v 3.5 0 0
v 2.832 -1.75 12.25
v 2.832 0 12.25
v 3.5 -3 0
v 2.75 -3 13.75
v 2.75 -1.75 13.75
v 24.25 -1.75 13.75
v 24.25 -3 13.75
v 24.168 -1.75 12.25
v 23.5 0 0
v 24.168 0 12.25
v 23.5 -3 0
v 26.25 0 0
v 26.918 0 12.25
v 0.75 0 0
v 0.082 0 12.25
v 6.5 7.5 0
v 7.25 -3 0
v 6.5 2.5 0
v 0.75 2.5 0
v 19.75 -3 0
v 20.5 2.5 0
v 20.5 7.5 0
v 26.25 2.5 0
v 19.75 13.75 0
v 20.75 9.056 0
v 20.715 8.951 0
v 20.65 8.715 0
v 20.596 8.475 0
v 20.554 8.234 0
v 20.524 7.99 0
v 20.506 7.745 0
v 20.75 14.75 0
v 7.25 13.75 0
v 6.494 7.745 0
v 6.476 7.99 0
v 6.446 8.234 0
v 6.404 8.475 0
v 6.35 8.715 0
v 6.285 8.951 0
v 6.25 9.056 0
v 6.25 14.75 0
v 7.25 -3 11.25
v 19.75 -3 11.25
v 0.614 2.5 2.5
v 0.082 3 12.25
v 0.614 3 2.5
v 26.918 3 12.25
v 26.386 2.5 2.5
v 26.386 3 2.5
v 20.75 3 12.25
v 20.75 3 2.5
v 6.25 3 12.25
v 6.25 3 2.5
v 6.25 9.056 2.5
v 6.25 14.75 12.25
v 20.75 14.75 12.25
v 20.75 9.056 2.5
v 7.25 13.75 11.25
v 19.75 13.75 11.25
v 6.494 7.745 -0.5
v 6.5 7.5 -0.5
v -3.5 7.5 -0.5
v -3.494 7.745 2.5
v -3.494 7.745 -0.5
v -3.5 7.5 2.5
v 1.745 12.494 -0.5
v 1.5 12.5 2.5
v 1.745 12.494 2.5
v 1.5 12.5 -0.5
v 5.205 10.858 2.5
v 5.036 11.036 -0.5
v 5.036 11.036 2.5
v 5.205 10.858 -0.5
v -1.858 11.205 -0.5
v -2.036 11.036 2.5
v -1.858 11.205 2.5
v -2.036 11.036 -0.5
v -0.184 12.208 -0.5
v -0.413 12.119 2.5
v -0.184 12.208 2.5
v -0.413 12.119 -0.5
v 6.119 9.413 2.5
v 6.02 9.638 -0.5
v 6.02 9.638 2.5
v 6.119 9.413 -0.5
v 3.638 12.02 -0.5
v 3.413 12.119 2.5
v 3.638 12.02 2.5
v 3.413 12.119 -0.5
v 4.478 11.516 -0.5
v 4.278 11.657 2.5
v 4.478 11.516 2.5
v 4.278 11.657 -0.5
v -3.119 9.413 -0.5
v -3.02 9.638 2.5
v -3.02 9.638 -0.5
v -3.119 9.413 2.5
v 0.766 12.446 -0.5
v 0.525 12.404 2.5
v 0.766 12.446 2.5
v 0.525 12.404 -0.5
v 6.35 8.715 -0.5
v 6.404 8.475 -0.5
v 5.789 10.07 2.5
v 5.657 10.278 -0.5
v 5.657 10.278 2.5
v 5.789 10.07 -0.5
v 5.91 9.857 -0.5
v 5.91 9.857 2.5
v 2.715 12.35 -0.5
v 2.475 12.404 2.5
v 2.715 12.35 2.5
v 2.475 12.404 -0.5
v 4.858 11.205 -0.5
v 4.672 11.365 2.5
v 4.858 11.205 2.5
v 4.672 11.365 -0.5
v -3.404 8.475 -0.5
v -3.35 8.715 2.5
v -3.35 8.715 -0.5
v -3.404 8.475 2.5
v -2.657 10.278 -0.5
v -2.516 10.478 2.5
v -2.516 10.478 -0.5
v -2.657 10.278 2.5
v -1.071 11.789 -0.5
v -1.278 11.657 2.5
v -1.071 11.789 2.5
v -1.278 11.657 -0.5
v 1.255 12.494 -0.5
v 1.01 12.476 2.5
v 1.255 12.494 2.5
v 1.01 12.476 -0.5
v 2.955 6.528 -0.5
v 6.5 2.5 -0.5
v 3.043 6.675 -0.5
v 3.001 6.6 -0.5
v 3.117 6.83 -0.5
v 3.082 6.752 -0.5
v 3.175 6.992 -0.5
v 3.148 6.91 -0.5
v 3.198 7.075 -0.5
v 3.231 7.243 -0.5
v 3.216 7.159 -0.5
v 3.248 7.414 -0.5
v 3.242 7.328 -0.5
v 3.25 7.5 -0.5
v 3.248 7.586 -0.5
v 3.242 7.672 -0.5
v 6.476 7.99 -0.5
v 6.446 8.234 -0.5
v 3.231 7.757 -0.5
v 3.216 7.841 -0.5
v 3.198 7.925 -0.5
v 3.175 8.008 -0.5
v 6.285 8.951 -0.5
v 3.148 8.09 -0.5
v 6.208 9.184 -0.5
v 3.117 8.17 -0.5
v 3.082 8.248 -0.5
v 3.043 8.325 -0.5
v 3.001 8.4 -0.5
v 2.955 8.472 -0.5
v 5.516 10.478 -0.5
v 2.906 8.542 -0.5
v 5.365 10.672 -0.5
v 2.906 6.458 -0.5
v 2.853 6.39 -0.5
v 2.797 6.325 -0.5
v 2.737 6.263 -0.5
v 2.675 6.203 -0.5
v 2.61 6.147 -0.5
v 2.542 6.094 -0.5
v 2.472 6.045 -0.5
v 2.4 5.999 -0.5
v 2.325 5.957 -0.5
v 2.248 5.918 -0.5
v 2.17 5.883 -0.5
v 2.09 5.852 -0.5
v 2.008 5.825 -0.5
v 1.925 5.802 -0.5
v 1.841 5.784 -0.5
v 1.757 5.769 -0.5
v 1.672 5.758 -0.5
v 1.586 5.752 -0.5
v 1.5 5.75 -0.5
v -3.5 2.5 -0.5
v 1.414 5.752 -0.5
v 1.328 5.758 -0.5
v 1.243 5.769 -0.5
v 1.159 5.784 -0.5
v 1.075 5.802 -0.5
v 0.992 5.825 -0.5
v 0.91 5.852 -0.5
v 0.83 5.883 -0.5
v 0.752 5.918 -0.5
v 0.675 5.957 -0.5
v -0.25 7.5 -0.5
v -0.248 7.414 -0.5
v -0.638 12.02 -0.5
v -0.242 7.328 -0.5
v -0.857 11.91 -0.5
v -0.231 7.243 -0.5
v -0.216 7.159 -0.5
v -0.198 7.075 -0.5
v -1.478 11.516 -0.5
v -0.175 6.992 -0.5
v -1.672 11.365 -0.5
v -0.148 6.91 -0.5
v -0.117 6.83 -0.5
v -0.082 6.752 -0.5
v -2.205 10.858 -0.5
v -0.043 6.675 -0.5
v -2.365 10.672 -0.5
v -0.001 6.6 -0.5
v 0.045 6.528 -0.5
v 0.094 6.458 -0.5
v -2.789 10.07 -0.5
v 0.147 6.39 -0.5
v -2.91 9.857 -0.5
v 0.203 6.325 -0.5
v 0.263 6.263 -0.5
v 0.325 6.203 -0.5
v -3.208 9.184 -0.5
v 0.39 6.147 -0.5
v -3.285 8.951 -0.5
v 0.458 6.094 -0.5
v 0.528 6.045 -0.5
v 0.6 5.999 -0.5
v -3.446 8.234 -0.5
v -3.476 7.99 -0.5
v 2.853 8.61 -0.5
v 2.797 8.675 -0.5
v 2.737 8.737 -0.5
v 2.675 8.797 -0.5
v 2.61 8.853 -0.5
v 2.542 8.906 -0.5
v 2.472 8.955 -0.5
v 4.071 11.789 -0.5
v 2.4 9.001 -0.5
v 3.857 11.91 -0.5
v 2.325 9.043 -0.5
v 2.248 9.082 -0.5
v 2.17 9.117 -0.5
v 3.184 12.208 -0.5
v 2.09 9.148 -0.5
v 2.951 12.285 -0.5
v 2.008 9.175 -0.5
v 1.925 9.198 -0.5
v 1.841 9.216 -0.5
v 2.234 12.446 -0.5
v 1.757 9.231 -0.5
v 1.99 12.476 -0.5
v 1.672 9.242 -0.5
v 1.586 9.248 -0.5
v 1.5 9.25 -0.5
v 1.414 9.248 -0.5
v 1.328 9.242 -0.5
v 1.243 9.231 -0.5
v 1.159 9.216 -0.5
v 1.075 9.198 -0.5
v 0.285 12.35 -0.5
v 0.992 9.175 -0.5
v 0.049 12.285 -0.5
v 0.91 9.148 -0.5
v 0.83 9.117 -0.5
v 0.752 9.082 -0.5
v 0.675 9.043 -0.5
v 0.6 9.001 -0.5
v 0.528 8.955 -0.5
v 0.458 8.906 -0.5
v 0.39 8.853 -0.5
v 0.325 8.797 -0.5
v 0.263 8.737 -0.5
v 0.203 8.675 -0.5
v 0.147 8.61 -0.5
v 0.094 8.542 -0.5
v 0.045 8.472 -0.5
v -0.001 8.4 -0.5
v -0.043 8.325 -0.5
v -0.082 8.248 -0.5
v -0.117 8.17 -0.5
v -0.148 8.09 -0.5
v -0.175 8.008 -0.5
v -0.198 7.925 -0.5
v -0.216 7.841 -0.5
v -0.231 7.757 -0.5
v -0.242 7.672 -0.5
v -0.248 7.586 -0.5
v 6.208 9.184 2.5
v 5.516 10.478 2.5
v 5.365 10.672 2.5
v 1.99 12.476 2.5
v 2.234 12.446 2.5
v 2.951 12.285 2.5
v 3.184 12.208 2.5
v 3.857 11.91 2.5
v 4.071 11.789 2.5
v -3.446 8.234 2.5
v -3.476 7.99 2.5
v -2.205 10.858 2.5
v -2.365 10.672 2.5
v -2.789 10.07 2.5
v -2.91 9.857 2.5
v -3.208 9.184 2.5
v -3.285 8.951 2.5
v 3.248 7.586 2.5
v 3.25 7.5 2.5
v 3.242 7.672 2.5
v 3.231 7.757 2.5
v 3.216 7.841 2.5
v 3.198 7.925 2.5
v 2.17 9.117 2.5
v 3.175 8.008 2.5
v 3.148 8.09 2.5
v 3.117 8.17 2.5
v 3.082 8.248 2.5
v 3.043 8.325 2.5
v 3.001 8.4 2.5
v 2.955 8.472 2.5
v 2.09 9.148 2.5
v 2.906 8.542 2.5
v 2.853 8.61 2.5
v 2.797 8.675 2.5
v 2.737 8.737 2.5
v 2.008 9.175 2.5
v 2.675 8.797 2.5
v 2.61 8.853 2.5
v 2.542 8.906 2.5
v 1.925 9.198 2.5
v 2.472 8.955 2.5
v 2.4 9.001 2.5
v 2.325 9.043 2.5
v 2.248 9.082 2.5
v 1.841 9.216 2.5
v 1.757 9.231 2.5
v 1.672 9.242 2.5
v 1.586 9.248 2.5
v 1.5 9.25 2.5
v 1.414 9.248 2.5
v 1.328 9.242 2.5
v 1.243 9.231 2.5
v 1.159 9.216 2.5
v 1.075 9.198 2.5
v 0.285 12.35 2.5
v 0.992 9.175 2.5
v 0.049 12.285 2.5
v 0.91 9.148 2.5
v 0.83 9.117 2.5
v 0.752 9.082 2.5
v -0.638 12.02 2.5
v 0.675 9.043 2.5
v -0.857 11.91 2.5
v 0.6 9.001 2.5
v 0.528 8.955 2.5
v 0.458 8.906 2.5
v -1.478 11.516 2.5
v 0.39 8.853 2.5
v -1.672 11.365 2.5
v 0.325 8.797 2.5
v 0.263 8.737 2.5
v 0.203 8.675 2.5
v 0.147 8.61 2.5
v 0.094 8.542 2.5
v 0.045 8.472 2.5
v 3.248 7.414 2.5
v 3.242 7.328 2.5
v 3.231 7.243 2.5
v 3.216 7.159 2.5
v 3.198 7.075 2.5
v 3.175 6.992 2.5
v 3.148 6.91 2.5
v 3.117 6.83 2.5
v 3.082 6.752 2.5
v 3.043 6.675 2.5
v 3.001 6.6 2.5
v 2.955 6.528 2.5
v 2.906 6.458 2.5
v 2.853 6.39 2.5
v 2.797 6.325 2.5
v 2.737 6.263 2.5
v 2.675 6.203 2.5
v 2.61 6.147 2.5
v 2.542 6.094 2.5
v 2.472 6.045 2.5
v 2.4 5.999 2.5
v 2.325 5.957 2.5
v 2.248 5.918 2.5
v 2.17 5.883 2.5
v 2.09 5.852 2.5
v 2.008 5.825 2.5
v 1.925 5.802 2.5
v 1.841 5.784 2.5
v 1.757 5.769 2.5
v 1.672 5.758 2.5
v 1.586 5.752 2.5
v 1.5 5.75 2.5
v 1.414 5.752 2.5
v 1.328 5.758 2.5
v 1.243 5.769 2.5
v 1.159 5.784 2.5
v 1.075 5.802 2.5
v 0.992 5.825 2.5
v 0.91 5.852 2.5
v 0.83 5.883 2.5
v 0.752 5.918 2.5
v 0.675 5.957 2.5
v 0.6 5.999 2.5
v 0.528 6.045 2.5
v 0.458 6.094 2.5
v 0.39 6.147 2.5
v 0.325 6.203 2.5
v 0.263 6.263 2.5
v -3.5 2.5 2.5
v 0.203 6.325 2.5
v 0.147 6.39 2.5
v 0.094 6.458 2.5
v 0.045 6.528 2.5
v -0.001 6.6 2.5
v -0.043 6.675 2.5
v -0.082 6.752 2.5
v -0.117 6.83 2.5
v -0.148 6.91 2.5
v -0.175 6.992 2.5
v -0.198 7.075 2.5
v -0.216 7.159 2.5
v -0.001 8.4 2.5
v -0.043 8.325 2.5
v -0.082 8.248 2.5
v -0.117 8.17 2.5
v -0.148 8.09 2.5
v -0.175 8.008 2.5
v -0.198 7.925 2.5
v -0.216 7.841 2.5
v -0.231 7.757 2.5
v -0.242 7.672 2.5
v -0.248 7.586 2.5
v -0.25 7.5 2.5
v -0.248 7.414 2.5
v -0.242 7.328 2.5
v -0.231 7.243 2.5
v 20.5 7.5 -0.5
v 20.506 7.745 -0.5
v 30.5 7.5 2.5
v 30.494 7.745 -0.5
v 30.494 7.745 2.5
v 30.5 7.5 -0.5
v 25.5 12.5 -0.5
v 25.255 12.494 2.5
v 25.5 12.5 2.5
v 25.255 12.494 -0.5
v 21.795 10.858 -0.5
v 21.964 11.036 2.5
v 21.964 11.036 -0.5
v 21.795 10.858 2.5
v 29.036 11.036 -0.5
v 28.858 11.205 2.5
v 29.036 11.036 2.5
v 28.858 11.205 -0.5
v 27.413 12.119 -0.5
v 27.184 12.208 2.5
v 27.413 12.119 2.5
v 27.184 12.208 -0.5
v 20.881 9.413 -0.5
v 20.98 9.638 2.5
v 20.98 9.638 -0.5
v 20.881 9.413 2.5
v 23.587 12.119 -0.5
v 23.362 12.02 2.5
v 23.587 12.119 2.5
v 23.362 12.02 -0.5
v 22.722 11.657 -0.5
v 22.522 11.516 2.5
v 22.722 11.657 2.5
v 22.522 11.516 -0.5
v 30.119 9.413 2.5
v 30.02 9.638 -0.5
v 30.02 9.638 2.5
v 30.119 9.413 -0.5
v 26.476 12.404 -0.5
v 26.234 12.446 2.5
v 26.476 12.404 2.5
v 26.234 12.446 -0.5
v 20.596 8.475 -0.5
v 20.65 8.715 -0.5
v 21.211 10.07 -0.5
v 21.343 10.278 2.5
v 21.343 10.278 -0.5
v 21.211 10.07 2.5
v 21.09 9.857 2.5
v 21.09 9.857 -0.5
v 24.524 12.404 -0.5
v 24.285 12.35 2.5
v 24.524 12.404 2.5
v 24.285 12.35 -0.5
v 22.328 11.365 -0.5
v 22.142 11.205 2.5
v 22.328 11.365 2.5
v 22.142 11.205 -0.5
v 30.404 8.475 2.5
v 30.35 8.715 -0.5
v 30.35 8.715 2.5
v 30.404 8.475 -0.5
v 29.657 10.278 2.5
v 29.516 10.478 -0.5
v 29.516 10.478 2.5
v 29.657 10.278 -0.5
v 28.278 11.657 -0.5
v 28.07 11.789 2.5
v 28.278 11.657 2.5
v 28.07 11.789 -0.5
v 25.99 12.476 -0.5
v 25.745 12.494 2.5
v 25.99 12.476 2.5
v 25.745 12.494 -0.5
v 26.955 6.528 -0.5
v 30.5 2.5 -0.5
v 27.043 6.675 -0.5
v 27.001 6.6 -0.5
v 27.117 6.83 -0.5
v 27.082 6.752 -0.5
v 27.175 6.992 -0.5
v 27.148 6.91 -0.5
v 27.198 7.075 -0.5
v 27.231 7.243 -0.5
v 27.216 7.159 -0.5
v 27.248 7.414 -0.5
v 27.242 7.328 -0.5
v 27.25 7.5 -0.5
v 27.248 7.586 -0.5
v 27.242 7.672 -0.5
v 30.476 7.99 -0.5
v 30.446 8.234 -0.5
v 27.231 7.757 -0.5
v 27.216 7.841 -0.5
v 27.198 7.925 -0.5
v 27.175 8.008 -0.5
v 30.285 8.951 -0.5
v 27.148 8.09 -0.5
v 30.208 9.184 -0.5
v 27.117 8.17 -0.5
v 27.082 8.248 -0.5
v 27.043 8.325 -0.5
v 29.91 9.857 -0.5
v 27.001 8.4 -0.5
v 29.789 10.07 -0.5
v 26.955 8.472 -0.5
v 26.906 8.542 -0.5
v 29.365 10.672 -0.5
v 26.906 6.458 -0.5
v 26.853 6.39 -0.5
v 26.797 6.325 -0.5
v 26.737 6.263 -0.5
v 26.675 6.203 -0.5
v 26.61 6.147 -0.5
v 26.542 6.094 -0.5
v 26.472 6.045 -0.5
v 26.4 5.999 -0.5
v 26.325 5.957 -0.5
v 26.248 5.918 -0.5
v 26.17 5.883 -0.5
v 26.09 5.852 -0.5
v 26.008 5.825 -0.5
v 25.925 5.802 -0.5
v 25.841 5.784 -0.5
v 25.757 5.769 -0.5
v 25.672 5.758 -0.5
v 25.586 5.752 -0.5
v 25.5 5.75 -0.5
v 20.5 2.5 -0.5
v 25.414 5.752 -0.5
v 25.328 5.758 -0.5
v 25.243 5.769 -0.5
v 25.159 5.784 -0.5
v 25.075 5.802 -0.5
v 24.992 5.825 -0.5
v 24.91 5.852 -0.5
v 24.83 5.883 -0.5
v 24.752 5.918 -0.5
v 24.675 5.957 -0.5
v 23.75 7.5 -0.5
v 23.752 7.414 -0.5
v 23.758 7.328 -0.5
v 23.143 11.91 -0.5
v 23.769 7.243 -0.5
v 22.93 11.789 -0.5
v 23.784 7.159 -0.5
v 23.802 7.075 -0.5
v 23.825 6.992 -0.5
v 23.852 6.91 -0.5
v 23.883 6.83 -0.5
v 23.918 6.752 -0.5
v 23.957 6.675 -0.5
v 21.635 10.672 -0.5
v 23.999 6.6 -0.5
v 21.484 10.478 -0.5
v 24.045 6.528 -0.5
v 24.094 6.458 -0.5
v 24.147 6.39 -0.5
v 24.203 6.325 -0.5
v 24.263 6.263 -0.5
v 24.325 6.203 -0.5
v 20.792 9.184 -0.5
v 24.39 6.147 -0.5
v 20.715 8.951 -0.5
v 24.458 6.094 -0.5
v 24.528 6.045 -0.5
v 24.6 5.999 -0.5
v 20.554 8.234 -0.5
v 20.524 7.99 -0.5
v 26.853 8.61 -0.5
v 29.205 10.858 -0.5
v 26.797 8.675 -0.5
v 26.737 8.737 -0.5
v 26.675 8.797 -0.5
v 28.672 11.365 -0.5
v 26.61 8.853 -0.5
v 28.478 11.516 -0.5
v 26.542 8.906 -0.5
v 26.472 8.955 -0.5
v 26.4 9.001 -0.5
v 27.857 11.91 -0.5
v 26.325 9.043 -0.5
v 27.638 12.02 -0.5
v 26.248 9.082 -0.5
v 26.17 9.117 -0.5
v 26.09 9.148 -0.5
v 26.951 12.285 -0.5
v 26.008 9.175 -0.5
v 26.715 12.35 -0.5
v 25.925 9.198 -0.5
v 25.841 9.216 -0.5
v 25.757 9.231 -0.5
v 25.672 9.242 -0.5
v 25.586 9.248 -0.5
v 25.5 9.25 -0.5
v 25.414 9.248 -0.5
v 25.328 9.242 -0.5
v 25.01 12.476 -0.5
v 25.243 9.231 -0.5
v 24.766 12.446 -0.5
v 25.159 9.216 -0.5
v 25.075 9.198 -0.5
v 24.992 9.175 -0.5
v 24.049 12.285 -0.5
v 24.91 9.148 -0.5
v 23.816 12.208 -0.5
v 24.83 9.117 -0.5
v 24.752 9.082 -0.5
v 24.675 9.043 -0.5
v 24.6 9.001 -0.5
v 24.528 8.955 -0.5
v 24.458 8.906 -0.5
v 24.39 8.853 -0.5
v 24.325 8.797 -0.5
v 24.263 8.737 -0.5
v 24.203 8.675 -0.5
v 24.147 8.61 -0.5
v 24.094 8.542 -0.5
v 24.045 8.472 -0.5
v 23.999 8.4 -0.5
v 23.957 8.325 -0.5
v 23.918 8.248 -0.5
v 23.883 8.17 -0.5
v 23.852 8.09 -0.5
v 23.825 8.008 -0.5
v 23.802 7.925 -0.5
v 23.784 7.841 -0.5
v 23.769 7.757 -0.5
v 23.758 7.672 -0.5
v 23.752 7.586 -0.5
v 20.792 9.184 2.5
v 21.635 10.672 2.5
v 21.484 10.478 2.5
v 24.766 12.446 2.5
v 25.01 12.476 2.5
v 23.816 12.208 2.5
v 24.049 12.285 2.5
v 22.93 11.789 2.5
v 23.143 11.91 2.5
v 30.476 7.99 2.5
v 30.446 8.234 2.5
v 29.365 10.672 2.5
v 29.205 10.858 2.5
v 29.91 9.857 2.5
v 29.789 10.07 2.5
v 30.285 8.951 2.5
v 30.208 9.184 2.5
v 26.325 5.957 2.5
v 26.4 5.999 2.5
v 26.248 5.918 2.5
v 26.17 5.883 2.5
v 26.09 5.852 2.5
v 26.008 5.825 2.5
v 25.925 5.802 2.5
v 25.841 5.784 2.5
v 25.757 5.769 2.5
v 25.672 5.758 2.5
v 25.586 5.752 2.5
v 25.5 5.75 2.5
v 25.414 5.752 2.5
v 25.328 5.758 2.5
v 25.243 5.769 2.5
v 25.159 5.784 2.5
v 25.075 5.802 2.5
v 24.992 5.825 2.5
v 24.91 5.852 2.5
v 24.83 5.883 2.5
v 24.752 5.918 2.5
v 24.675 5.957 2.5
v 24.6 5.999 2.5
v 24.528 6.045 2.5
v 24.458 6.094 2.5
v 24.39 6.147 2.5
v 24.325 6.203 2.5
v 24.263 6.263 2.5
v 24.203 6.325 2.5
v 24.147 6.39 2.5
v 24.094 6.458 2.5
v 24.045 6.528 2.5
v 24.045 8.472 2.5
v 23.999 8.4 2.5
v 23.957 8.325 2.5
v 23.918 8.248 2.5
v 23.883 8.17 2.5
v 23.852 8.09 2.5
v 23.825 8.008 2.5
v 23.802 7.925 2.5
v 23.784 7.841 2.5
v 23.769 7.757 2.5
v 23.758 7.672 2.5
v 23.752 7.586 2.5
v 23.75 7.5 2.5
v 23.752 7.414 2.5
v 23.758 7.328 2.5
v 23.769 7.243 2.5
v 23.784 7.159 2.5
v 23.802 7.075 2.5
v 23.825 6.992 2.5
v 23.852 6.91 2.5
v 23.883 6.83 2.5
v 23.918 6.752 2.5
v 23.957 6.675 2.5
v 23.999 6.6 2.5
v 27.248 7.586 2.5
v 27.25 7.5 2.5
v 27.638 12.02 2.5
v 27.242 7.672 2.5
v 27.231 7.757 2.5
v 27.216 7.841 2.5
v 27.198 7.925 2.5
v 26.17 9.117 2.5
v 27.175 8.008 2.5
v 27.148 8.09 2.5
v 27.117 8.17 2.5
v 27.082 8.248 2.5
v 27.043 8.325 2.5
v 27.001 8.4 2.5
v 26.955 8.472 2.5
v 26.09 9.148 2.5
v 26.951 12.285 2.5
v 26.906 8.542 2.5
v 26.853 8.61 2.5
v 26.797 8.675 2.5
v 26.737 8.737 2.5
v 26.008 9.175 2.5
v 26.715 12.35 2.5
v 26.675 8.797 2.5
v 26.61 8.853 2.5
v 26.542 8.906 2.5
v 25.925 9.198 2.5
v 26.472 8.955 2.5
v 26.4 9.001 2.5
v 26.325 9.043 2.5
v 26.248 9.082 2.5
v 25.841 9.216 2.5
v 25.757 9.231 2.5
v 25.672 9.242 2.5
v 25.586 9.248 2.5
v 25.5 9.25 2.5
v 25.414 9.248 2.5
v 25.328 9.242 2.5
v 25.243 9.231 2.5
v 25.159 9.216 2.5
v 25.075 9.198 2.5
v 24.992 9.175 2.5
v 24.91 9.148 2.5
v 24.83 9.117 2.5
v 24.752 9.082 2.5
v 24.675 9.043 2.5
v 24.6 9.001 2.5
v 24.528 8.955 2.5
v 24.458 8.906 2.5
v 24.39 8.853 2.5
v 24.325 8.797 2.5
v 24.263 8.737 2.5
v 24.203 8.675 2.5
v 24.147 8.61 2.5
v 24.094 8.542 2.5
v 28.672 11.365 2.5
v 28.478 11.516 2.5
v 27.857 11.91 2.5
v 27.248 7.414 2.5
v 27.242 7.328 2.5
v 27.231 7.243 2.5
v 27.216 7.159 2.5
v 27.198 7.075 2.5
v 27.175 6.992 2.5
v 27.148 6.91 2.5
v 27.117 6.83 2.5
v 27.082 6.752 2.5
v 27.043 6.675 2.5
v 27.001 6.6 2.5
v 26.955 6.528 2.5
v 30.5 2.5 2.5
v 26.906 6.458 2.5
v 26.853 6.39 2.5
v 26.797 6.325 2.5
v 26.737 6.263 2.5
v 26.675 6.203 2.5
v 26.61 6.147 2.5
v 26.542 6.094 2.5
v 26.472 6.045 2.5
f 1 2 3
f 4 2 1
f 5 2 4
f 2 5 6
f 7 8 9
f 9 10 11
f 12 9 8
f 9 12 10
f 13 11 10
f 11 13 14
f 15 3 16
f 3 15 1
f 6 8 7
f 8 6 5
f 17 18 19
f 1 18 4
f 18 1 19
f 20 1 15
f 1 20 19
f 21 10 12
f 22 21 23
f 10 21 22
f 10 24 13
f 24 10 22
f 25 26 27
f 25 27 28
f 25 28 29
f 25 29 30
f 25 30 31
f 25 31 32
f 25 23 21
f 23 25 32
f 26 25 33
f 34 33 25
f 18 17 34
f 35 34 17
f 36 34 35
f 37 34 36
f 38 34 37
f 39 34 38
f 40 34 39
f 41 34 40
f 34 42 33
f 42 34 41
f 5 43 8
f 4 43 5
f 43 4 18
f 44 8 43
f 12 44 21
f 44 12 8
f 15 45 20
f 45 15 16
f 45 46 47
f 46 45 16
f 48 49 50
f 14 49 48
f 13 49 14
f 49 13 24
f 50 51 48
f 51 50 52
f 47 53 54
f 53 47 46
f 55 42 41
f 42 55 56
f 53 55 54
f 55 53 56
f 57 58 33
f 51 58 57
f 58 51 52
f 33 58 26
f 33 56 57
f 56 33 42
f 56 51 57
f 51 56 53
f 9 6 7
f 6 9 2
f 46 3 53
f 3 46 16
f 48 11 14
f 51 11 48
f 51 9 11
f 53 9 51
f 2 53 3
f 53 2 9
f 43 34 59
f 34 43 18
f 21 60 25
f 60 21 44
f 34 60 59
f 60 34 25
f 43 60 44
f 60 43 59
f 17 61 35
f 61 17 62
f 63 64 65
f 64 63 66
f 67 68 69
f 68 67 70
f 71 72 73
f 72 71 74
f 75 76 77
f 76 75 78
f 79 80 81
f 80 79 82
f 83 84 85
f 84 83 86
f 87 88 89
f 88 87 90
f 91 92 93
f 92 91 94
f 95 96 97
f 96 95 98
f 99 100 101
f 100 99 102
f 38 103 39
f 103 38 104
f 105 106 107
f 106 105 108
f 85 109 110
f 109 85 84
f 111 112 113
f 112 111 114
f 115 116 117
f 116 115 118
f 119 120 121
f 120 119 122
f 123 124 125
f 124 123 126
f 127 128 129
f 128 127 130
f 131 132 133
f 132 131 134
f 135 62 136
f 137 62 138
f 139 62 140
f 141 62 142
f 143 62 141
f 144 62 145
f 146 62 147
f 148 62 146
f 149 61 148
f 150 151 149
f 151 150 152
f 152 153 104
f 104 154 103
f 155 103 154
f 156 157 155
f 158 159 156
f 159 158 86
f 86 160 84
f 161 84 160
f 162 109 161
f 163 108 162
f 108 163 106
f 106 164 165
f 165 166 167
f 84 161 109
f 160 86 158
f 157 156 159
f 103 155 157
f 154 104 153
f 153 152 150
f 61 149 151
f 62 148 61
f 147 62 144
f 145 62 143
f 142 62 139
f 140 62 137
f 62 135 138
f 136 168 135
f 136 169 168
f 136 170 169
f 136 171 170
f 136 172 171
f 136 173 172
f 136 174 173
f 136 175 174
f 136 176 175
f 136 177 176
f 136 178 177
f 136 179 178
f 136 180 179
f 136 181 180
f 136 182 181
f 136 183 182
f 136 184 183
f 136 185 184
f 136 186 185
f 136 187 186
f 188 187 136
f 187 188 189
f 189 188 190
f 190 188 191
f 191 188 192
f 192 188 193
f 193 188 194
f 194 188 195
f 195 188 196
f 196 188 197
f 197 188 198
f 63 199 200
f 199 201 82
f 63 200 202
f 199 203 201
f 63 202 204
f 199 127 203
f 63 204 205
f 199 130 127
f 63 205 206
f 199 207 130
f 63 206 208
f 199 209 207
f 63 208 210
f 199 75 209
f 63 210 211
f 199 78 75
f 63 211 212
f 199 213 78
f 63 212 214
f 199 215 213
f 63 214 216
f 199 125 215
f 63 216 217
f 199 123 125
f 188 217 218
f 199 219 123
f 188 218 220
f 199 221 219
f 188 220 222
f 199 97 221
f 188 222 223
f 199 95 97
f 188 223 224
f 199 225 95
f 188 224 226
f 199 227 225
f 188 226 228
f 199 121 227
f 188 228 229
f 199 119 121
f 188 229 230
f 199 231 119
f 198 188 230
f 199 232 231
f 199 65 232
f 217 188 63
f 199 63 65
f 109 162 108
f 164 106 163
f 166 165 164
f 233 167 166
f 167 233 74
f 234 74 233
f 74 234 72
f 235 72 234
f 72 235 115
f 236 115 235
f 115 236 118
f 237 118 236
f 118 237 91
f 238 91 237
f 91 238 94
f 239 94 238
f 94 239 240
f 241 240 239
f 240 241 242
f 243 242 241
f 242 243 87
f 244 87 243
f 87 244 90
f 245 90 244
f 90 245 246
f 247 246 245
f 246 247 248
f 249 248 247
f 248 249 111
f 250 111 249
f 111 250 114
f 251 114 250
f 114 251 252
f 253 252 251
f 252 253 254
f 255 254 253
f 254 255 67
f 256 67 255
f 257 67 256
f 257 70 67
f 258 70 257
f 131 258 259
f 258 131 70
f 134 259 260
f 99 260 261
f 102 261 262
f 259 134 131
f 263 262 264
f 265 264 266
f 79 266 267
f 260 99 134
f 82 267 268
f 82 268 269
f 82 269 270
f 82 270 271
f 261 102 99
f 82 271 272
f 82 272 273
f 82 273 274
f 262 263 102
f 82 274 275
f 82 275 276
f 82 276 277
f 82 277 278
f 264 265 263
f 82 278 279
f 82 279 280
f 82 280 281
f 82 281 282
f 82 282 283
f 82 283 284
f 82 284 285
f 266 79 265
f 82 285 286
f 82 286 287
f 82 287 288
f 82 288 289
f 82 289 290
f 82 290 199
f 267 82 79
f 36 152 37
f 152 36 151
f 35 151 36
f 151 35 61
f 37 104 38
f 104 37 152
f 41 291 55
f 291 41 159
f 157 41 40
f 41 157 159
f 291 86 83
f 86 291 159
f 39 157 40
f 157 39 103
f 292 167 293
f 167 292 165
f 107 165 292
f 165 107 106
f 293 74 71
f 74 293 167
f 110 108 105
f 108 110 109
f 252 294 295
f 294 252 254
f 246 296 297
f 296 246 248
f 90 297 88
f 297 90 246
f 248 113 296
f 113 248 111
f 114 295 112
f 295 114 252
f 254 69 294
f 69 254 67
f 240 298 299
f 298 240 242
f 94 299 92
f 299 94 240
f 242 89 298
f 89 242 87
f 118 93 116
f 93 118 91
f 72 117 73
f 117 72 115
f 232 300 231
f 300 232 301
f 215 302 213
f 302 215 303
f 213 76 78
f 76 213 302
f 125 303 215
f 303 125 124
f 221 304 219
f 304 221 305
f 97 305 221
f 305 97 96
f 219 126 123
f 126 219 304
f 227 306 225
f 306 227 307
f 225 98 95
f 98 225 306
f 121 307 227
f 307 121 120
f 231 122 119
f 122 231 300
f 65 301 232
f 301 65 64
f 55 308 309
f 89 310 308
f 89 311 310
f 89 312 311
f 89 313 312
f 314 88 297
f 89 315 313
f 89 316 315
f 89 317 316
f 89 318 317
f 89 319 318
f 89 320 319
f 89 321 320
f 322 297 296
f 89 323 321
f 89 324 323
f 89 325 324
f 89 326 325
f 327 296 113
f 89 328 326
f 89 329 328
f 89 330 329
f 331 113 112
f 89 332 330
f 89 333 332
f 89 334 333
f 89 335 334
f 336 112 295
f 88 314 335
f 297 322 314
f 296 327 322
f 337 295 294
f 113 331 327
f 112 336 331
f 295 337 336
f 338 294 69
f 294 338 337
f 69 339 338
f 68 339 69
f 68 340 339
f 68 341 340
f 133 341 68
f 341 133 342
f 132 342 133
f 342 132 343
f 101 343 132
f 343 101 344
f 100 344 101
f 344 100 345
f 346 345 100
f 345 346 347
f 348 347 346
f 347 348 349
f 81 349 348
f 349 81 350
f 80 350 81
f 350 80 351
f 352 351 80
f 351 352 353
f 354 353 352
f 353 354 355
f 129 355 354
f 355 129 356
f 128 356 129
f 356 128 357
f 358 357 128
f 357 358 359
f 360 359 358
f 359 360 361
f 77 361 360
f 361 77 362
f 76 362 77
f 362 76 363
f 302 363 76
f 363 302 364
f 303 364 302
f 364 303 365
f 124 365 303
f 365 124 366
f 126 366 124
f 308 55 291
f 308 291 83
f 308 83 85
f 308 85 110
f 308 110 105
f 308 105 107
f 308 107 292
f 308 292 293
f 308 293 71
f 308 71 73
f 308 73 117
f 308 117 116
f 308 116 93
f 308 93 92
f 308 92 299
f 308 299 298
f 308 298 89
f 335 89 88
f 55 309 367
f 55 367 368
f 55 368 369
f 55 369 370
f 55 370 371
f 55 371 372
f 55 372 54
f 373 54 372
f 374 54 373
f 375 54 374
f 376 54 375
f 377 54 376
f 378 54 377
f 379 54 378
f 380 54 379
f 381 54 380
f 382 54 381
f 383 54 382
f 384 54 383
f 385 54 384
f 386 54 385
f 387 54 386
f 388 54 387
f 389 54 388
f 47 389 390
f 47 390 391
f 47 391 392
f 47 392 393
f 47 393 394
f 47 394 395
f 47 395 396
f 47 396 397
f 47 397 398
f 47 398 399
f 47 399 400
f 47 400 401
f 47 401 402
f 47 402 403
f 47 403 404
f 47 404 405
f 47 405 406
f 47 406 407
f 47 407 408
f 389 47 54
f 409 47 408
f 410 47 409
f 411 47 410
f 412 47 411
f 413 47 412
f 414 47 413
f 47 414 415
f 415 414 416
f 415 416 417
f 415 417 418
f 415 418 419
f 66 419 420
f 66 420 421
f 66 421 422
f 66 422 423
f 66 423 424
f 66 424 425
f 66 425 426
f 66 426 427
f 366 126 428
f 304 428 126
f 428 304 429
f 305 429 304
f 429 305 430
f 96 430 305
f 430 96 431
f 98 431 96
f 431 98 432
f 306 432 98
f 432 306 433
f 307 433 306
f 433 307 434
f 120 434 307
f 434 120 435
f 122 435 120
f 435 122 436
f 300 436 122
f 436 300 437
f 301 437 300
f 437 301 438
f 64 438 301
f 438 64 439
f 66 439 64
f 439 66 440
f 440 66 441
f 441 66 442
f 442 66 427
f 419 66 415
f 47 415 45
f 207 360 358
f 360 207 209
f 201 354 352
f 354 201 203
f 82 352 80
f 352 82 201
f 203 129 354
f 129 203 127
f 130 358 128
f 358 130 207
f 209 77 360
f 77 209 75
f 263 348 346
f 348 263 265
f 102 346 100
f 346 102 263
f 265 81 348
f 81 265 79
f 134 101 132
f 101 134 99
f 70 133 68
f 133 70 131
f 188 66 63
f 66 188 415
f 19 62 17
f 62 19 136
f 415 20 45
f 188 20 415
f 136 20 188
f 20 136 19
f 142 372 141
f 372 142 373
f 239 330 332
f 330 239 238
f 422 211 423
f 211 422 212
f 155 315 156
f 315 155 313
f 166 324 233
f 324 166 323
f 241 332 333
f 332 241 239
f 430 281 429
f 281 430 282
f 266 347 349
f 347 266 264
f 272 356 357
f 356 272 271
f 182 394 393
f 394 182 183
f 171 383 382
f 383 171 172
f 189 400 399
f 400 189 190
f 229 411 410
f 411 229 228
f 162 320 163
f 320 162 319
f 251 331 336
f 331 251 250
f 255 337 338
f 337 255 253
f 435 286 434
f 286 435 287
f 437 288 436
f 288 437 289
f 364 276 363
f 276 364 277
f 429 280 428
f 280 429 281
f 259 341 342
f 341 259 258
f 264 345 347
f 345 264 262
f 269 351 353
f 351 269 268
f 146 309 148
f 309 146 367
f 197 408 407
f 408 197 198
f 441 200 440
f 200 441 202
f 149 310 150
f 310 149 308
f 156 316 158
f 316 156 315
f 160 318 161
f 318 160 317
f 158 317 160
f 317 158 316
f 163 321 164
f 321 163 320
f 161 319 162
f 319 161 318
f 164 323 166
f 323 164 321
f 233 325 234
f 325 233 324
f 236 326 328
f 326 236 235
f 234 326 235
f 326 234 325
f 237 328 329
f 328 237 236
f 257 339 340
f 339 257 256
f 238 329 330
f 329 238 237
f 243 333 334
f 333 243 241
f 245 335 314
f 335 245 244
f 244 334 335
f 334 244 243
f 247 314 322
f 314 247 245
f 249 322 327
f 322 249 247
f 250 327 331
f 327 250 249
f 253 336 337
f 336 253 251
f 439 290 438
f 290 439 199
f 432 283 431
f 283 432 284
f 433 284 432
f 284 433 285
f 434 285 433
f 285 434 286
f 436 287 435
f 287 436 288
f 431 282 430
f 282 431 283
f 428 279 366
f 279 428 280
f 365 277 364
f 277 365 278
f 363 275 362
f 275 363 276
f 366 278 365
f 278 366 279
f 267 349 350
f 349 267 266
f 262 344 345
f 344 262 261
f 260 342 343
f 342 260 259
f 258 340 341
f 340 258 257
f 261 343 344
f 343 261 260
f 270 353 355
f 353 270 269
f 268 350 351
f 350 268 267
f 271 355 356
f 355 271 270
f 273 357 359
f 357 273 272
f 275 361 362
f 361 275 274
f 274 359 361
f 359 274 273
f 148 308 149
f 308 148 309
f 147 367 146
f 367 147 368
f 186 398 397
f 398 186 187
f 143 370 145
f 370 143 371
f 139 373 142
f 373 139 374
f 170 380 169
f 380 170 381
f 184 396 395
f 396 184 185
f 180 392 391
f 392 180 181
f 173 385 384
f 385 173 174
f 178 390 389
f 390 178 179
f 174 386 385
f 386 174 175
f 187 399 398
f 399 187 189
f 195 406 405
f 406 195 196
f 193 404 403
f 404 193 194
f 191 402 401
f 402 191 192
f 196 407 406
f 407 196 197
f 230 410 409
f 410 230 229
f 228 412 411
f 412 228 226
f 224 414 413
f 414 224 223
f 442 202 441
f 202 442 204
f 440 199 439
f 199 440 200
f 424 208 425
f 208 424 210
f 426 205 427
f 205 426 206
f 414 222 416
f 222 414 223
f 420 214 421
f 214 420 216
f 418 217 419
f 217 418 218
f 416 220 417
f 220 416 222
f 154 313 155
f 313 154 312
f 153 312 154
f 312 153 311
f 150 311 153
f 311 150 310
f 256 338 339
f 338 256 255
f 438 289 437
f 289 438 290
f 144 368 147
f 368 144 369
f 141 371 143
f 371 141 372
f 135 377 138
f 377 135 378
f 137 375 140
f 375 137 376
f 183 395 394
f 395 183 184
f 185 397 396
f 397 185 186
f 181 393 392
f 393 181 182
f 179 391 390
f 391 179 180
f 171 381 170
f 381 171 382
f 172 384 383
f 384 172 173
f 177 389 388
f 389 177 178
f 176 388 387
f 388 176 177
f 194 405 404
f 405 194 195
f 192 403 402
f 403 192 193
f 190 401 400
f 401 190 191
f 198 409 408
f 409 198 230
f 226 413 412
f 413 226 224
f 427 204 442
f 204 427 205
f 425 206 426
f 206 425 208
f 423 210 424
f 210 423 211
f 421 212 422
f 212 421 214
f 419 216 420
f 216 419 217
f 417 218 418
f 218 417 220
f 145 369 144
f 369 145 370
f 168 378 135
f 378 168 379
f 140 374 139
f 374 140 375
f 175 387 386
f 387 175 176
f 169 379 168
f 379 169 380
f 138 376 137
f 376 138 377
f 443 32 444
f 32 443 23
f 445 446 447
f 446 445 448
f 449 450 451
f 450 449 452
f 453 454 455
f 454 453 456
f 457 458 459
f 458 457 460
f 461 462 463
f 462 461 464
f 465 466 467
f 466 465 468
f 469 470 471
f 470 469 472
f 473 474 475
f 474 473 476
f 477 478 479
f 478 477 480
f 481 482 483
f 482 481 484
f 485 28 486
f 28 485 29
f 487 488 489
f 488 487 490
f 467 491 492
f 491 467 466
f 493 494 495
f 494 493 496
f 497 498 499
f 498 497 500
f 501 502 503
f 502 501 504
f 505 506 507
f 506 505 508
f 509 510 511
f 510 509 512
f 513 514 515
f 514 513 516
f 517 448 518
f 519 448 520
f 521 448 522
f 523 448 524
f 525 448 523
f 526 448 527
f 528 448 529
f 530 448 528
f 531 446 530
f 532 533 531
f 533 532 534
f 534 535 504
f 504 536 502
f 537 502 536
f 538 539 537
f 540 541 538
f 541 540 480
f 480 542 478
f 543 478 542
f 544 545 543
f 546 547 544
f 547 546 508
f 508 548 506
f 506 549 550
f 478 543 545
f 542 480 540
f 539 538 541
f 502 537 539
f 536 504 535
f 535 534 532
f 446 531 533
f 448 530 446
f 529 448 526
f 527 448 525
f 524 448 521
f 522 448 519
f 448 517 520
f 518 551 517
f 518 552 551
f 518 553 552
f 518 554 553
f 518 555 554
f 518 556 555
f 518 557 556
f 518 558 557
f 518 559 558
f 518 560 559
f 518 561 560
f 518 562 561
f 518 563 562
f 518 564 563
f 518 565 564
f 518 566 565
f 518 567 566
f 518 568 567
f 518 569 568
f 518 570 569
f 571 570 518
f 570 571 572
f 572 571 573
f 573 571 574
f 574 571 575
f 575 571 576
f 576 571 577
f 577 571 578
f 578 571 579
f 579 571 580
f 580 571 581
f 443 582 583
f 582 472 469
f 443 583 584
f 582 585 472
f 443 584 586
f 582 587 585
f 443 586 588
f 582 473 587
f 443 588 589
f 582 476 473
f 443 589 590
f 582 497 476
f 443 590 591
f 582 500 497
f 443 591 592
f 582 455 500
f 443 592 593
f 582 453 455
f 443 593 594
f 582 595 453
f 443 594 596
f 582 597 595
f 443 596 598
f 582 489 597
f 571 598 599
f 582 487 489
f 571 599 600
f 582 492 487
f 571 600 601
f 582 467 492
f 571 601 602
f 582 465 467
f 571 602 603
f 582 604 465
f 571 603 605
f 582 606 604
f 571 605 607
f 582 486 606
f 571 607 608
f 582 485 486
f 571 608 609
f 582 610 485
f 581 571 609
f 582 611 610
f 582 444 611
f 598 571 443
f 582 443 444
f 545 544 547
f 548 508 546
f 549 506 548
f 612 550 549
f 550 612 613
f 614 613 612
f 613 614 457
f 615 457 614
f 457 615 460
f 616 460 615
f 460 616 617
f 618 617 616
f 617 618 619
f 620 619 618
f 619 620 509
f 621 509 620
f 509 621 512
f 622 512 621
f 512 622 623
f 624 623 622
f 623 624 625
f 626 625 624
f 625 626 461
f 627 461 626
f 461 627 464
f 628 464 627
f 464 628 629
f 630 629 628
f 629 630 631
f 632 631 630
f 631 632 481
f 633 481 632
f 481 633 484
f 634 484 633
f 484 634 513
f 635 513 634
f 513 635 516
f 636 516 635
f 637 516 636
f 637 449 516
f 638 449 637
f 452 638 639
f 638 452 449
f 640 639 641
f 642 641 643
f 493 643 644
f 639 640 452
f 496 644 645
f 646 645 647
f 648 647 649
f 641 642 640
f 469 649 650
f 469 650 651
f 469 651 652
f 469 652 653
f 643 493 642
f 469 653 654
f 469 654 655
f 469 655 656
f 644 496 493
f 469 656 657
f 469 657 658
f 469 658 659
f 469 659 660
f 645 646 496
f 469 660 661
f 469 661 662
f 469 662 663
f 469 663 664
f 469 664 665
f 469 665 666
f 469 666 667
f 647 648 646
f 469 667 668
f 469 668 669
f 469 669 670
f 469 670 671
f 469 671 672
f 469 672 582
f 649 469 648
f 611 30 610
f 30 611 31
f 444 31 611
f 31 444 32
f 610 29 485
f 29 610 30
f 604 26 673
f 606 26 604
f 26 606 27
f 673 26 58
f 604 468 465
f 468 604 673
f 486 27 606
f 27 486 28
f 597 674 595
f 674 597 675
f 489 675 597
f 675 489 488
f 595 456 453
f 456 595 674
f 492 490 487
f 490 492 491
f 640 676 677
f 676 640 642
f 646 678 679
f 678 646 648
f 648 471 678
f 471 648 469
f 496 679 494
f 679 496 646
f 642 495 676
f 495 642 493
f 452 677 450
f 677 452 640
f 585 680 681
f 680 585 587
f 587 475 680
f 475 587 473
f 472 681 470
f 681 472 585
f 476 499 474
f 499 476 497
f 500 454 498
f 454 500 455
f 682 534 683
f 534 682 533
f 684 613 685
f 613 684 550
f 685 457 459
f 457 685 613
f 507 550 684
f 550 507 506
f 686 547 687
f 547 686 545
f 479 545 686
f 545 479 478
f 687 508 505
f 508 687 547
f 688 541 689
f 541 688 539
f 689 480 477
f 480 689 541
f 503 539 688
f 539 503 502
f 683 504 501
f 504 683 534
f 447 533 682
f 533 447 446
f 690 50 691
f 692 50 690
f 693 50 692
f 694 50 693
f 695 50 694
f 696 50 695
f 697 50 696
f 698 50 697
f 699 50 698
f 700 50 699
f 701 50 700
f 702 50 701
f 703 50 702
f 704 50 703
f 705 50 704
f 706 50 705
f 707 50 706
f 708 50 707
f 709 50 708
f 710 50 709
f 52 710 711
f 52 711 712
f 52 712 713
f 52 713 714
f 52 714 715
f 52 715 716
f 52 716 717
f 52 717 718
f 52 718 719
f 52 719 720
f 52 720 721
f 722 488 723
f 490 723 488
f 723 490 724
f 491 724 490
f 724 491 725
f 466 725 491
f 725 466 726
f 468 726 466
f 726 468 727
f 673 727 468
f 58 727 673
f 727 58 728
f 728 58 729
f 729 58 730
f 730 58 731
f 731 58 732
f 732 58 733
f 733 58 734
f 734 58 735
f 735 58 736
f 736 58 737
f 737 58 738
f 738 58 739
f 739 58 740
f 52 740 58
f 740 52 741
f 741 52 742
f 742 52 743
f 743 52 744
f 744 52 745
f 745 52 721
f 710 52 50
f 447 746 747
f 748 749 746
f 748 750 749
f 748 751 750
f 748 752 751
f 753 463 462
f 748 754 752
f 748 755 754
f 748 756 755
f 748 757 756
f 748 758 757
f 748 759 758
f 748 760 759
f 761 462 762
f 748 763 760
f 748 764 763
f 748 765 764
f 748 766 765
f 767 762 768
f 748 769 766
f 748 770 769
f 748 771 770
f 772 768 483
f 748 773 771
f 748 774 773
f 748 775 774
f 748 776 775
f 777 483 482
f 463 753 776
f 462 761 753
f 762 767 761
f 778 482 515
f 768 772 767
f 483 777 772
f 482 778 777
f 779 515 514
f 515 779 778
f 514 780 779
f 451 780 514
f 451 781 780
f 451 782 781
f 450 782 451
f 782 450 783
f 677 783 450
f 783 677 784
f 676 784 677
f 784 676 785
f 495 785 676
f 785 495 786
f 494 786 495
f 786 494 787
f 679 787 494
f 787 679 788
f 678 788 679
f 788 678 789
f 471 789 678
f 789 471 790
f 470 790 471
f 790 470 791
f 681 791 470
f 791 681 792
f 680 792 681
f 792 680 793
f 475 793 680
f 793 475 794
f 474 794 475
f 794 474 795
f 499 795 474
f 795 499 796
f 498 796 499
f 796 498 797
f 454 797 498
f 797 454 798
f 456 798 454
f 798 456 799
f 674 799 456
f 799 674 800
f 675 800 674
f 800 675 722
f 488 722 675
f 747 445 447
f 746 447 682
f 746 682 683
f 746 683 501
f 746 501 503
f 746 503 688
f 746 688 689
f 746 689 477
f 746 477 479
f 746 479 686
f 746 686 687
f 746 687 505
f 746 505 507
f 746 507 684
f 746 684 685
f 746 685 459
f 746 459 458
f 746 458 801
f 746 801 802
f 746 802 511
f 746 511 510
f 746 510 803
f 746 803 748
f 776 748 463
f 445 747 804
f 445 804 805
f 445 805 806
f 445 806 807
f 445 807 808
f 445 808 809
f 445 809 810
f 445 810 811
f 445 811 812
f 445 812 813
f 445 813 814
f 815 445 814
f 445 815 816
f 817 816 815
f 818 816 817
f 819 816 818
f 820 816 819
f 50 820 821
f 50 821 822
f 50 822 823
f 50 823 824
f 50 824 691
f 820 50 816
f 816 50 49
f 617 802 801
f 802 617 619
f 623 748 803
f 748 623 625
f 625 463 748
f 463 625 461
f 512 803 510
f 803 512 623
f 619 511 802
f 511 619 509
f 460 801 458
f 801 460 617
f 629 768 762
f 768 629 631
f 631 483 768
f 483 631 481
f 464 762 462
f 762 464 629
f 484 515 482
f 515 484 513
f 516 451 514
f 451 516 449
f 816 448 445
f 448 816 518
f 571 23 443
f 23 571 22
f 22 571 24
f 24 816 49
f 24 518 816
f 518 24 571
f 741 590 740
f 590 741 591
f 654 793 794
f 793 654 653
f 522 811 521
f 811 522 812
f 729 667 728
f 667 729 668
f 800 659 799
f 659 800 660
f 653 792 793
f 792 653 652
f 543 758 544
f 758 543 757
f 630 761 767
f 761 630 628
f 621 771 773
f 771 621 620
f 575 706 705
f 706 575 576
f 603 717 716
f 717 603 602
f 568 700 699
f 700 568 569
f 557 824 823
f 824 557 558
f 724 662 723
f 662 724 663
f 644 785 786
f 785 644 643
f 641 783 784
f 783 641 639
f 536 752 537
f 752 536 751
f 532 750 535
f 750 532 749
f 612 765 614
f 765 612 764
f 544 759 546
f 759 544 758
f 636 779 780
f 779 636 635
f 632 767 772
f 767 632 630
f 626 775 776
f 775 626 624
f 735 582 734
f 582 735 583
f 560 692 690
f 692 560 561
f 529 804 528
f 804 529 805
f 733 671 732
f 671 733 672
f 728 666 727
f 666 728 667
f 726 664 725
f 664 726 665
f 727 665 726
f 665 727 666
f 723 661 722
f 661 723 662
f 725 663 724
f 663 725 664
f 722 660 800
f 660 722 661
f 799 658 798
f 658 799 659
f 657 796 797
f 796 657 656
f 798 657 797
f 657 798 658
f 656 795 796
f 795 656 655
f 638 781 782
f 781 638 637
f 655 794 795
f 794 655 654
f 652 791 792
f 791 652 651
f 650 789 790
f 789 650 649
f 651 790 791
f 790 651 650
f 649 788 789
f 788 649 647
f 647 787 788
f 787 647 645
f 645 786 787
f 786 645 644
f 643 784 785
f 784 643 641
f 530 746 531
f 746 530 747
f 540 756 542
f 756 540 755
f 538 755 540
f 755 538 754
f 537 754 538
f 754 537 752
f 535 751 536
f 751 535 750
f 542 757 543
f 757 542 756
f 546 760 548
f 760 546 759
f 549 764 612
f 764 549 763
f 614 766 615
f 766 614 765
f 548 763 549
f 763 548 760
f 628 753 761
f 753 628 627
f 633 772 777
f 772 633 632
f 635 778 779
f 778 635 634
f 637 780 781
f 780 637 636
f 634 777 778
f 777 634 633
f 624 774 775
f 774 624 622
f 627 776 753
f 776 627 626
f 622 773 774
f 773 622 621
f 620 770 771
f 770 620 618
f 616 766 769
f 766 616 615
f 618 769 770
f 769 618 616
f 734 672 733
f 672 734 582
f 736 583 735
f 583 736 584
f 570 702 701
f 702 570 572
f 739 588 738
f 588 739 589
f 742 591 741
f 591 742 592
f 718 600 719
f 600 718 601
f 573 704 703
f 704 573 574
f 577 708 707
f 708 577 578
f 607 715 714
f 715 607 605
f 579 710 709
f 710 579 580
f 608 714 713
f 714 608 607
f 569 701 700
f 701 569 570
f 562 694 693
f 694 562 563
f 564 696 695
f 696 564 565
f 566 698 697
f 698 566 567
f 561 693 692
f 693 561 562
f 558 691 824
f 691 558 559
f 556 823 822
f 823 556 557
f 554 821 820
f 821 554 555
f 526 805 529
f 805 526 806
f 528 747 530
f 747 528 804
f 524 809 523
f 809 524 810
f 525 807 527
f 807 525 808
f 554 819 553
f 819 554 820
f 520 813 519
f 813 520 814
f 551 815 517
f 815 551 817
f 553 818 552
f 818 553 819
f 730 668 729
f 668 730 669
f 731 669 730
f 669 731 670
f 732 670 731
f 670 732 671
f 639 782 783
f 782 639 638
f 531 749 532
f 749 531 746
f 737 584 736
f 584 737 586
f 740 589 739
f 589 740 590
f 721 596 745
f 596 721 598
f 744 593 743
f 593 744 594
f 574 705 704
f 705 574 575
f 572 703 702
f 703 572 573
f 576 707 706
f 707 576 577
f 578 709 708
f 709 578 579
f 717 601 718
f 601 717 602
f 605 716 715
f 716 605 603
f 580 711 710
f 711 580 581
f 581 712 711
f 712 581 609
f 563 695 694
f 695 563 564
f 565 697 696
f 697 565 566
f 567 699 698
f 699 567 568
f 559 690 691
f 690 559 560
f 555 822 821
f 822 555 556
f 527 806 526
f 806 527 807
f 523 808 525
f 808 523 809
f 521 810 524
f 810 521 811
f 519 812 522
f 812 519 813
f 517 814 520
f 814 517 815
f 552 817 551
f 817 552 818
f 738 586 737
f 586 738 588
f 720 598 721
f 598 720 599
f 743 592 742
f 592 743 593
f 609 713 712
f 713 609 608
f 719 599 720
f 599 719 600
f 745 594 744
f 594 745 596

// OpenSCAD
COVER_X = 27;
COVER_X_VARIANCE = 1.5;
COVER_X_OFFSET = 2.75;
COVER_Y = 6;
COVER_Y_OFFSET = 1.25;
COVER_Z = 13.75;
COVER_Z_OFFSET = 1.5;

CLIP_R_OUTER = 5;
CLIP_R_INNER = 1.75;
CLIP_X_SEPARATION = 24;
CLIP_Y_OFFSET = 7.5;
CLIP_Z = 3;
CLIP_Z_OFFSET = .5;

USB_B_X = 12;
USB_B_Y = 16.5;
USB_B_Z = 11;
USB_B_TOLERANCE = .25;
USB_B_THICKNESS = 1;

CYLINDER_FACETS = 128;

module copy_mirror(v) { 
    children(); 
    mirror(v) children(); 
} 

rotate([90, 0, 0]) {
    difference() {
        union() {
            translate([COVER_X_OFFSET, 0, 0])
                linear_extrude(height = COVER_Y / 2) 
                    polygon(points=[[COVER_X_VARIANCE / 2, 0], [COVER_X - (COVER_X_OFFSET * 2) - (COVER_X_VARIANCE / 2), 0], [COVER_X - (COVER_X_OFFSET * 2), COVER_Z], [0, COVER_Z]]);
            translate([0, 0, -COVER_Y / 2])
                linear_extrude(height = COVER_Y / 2) 
                    polygon(points=[[COVER_X_VARIANCE / 2, 0], [COVER_X - (COVER_X_VARIANCE / 2), 0], [COVER_X, COVER_Z], [0, COVER_Z]]);
            
            translate([COVER_X / 2 - USB_B_X / 2 - USB_B_TOLERANCE - USB_B_THICKNESS, 0, COVER_Y / 2 - USB_B_Y - USB_B_TOLERANCE - USB_B_THICKNESS])
            cube([USB_B_X + USB_B_TOLERANCE * 2 + USB_B_THICKNESS * 2, USB_B_Z + USB_B_TOLERANCE + USB_B_THICKNESS, USB_B_Y + USB_B_TOLERANCE + USB_B_THICKNESS]);
        }
        translate([0, COVER_Z - COVER_Z_OFFSET, -COVER_Y / 2])
            cube([COVER_X, COVER_Z_OFFSET, COVER_Y - COVER_Y_OFFSET]);
        translate([COVER_X / 2 - USB_B_X / 2 - USB_B_TOLERANCE, 0, COVER_Y / 2 - USB_B_Y - USB_B_TOLERANCE])
            cube([USB_B_X + USB_B_TOLERANCE * 2, USB_B_Z + USB_B_TOLERANCE, USB_B_Y + USB_B_TOLERANCE]);
    }
}

translate([COVER_X / 2, 0, 0])
    copy_mirror(vec=[0,1,0])
        translate([-CLIP_X_SEPARATION / 2, CLIP_Y_OFFSET, -CLIP_Z_OFFSET])
            difference() {
                union() {
                    cylinder(r=CLIP_R_OUTER, h=CLIP_Z, $fn=CYLINDER_FACETS);
                    translate([-CLIP_R_OUTER, -CLIP_R_OUTER, 0])
                        cube([CLIP_R_OUTER * 2, CLIP_R_OUTER, CLIP_Z]);
                }
                cylinder(r=CLIP_R_INNER, h=CLIP_Z, $fn=CYLINDER_FACETS);
            }
